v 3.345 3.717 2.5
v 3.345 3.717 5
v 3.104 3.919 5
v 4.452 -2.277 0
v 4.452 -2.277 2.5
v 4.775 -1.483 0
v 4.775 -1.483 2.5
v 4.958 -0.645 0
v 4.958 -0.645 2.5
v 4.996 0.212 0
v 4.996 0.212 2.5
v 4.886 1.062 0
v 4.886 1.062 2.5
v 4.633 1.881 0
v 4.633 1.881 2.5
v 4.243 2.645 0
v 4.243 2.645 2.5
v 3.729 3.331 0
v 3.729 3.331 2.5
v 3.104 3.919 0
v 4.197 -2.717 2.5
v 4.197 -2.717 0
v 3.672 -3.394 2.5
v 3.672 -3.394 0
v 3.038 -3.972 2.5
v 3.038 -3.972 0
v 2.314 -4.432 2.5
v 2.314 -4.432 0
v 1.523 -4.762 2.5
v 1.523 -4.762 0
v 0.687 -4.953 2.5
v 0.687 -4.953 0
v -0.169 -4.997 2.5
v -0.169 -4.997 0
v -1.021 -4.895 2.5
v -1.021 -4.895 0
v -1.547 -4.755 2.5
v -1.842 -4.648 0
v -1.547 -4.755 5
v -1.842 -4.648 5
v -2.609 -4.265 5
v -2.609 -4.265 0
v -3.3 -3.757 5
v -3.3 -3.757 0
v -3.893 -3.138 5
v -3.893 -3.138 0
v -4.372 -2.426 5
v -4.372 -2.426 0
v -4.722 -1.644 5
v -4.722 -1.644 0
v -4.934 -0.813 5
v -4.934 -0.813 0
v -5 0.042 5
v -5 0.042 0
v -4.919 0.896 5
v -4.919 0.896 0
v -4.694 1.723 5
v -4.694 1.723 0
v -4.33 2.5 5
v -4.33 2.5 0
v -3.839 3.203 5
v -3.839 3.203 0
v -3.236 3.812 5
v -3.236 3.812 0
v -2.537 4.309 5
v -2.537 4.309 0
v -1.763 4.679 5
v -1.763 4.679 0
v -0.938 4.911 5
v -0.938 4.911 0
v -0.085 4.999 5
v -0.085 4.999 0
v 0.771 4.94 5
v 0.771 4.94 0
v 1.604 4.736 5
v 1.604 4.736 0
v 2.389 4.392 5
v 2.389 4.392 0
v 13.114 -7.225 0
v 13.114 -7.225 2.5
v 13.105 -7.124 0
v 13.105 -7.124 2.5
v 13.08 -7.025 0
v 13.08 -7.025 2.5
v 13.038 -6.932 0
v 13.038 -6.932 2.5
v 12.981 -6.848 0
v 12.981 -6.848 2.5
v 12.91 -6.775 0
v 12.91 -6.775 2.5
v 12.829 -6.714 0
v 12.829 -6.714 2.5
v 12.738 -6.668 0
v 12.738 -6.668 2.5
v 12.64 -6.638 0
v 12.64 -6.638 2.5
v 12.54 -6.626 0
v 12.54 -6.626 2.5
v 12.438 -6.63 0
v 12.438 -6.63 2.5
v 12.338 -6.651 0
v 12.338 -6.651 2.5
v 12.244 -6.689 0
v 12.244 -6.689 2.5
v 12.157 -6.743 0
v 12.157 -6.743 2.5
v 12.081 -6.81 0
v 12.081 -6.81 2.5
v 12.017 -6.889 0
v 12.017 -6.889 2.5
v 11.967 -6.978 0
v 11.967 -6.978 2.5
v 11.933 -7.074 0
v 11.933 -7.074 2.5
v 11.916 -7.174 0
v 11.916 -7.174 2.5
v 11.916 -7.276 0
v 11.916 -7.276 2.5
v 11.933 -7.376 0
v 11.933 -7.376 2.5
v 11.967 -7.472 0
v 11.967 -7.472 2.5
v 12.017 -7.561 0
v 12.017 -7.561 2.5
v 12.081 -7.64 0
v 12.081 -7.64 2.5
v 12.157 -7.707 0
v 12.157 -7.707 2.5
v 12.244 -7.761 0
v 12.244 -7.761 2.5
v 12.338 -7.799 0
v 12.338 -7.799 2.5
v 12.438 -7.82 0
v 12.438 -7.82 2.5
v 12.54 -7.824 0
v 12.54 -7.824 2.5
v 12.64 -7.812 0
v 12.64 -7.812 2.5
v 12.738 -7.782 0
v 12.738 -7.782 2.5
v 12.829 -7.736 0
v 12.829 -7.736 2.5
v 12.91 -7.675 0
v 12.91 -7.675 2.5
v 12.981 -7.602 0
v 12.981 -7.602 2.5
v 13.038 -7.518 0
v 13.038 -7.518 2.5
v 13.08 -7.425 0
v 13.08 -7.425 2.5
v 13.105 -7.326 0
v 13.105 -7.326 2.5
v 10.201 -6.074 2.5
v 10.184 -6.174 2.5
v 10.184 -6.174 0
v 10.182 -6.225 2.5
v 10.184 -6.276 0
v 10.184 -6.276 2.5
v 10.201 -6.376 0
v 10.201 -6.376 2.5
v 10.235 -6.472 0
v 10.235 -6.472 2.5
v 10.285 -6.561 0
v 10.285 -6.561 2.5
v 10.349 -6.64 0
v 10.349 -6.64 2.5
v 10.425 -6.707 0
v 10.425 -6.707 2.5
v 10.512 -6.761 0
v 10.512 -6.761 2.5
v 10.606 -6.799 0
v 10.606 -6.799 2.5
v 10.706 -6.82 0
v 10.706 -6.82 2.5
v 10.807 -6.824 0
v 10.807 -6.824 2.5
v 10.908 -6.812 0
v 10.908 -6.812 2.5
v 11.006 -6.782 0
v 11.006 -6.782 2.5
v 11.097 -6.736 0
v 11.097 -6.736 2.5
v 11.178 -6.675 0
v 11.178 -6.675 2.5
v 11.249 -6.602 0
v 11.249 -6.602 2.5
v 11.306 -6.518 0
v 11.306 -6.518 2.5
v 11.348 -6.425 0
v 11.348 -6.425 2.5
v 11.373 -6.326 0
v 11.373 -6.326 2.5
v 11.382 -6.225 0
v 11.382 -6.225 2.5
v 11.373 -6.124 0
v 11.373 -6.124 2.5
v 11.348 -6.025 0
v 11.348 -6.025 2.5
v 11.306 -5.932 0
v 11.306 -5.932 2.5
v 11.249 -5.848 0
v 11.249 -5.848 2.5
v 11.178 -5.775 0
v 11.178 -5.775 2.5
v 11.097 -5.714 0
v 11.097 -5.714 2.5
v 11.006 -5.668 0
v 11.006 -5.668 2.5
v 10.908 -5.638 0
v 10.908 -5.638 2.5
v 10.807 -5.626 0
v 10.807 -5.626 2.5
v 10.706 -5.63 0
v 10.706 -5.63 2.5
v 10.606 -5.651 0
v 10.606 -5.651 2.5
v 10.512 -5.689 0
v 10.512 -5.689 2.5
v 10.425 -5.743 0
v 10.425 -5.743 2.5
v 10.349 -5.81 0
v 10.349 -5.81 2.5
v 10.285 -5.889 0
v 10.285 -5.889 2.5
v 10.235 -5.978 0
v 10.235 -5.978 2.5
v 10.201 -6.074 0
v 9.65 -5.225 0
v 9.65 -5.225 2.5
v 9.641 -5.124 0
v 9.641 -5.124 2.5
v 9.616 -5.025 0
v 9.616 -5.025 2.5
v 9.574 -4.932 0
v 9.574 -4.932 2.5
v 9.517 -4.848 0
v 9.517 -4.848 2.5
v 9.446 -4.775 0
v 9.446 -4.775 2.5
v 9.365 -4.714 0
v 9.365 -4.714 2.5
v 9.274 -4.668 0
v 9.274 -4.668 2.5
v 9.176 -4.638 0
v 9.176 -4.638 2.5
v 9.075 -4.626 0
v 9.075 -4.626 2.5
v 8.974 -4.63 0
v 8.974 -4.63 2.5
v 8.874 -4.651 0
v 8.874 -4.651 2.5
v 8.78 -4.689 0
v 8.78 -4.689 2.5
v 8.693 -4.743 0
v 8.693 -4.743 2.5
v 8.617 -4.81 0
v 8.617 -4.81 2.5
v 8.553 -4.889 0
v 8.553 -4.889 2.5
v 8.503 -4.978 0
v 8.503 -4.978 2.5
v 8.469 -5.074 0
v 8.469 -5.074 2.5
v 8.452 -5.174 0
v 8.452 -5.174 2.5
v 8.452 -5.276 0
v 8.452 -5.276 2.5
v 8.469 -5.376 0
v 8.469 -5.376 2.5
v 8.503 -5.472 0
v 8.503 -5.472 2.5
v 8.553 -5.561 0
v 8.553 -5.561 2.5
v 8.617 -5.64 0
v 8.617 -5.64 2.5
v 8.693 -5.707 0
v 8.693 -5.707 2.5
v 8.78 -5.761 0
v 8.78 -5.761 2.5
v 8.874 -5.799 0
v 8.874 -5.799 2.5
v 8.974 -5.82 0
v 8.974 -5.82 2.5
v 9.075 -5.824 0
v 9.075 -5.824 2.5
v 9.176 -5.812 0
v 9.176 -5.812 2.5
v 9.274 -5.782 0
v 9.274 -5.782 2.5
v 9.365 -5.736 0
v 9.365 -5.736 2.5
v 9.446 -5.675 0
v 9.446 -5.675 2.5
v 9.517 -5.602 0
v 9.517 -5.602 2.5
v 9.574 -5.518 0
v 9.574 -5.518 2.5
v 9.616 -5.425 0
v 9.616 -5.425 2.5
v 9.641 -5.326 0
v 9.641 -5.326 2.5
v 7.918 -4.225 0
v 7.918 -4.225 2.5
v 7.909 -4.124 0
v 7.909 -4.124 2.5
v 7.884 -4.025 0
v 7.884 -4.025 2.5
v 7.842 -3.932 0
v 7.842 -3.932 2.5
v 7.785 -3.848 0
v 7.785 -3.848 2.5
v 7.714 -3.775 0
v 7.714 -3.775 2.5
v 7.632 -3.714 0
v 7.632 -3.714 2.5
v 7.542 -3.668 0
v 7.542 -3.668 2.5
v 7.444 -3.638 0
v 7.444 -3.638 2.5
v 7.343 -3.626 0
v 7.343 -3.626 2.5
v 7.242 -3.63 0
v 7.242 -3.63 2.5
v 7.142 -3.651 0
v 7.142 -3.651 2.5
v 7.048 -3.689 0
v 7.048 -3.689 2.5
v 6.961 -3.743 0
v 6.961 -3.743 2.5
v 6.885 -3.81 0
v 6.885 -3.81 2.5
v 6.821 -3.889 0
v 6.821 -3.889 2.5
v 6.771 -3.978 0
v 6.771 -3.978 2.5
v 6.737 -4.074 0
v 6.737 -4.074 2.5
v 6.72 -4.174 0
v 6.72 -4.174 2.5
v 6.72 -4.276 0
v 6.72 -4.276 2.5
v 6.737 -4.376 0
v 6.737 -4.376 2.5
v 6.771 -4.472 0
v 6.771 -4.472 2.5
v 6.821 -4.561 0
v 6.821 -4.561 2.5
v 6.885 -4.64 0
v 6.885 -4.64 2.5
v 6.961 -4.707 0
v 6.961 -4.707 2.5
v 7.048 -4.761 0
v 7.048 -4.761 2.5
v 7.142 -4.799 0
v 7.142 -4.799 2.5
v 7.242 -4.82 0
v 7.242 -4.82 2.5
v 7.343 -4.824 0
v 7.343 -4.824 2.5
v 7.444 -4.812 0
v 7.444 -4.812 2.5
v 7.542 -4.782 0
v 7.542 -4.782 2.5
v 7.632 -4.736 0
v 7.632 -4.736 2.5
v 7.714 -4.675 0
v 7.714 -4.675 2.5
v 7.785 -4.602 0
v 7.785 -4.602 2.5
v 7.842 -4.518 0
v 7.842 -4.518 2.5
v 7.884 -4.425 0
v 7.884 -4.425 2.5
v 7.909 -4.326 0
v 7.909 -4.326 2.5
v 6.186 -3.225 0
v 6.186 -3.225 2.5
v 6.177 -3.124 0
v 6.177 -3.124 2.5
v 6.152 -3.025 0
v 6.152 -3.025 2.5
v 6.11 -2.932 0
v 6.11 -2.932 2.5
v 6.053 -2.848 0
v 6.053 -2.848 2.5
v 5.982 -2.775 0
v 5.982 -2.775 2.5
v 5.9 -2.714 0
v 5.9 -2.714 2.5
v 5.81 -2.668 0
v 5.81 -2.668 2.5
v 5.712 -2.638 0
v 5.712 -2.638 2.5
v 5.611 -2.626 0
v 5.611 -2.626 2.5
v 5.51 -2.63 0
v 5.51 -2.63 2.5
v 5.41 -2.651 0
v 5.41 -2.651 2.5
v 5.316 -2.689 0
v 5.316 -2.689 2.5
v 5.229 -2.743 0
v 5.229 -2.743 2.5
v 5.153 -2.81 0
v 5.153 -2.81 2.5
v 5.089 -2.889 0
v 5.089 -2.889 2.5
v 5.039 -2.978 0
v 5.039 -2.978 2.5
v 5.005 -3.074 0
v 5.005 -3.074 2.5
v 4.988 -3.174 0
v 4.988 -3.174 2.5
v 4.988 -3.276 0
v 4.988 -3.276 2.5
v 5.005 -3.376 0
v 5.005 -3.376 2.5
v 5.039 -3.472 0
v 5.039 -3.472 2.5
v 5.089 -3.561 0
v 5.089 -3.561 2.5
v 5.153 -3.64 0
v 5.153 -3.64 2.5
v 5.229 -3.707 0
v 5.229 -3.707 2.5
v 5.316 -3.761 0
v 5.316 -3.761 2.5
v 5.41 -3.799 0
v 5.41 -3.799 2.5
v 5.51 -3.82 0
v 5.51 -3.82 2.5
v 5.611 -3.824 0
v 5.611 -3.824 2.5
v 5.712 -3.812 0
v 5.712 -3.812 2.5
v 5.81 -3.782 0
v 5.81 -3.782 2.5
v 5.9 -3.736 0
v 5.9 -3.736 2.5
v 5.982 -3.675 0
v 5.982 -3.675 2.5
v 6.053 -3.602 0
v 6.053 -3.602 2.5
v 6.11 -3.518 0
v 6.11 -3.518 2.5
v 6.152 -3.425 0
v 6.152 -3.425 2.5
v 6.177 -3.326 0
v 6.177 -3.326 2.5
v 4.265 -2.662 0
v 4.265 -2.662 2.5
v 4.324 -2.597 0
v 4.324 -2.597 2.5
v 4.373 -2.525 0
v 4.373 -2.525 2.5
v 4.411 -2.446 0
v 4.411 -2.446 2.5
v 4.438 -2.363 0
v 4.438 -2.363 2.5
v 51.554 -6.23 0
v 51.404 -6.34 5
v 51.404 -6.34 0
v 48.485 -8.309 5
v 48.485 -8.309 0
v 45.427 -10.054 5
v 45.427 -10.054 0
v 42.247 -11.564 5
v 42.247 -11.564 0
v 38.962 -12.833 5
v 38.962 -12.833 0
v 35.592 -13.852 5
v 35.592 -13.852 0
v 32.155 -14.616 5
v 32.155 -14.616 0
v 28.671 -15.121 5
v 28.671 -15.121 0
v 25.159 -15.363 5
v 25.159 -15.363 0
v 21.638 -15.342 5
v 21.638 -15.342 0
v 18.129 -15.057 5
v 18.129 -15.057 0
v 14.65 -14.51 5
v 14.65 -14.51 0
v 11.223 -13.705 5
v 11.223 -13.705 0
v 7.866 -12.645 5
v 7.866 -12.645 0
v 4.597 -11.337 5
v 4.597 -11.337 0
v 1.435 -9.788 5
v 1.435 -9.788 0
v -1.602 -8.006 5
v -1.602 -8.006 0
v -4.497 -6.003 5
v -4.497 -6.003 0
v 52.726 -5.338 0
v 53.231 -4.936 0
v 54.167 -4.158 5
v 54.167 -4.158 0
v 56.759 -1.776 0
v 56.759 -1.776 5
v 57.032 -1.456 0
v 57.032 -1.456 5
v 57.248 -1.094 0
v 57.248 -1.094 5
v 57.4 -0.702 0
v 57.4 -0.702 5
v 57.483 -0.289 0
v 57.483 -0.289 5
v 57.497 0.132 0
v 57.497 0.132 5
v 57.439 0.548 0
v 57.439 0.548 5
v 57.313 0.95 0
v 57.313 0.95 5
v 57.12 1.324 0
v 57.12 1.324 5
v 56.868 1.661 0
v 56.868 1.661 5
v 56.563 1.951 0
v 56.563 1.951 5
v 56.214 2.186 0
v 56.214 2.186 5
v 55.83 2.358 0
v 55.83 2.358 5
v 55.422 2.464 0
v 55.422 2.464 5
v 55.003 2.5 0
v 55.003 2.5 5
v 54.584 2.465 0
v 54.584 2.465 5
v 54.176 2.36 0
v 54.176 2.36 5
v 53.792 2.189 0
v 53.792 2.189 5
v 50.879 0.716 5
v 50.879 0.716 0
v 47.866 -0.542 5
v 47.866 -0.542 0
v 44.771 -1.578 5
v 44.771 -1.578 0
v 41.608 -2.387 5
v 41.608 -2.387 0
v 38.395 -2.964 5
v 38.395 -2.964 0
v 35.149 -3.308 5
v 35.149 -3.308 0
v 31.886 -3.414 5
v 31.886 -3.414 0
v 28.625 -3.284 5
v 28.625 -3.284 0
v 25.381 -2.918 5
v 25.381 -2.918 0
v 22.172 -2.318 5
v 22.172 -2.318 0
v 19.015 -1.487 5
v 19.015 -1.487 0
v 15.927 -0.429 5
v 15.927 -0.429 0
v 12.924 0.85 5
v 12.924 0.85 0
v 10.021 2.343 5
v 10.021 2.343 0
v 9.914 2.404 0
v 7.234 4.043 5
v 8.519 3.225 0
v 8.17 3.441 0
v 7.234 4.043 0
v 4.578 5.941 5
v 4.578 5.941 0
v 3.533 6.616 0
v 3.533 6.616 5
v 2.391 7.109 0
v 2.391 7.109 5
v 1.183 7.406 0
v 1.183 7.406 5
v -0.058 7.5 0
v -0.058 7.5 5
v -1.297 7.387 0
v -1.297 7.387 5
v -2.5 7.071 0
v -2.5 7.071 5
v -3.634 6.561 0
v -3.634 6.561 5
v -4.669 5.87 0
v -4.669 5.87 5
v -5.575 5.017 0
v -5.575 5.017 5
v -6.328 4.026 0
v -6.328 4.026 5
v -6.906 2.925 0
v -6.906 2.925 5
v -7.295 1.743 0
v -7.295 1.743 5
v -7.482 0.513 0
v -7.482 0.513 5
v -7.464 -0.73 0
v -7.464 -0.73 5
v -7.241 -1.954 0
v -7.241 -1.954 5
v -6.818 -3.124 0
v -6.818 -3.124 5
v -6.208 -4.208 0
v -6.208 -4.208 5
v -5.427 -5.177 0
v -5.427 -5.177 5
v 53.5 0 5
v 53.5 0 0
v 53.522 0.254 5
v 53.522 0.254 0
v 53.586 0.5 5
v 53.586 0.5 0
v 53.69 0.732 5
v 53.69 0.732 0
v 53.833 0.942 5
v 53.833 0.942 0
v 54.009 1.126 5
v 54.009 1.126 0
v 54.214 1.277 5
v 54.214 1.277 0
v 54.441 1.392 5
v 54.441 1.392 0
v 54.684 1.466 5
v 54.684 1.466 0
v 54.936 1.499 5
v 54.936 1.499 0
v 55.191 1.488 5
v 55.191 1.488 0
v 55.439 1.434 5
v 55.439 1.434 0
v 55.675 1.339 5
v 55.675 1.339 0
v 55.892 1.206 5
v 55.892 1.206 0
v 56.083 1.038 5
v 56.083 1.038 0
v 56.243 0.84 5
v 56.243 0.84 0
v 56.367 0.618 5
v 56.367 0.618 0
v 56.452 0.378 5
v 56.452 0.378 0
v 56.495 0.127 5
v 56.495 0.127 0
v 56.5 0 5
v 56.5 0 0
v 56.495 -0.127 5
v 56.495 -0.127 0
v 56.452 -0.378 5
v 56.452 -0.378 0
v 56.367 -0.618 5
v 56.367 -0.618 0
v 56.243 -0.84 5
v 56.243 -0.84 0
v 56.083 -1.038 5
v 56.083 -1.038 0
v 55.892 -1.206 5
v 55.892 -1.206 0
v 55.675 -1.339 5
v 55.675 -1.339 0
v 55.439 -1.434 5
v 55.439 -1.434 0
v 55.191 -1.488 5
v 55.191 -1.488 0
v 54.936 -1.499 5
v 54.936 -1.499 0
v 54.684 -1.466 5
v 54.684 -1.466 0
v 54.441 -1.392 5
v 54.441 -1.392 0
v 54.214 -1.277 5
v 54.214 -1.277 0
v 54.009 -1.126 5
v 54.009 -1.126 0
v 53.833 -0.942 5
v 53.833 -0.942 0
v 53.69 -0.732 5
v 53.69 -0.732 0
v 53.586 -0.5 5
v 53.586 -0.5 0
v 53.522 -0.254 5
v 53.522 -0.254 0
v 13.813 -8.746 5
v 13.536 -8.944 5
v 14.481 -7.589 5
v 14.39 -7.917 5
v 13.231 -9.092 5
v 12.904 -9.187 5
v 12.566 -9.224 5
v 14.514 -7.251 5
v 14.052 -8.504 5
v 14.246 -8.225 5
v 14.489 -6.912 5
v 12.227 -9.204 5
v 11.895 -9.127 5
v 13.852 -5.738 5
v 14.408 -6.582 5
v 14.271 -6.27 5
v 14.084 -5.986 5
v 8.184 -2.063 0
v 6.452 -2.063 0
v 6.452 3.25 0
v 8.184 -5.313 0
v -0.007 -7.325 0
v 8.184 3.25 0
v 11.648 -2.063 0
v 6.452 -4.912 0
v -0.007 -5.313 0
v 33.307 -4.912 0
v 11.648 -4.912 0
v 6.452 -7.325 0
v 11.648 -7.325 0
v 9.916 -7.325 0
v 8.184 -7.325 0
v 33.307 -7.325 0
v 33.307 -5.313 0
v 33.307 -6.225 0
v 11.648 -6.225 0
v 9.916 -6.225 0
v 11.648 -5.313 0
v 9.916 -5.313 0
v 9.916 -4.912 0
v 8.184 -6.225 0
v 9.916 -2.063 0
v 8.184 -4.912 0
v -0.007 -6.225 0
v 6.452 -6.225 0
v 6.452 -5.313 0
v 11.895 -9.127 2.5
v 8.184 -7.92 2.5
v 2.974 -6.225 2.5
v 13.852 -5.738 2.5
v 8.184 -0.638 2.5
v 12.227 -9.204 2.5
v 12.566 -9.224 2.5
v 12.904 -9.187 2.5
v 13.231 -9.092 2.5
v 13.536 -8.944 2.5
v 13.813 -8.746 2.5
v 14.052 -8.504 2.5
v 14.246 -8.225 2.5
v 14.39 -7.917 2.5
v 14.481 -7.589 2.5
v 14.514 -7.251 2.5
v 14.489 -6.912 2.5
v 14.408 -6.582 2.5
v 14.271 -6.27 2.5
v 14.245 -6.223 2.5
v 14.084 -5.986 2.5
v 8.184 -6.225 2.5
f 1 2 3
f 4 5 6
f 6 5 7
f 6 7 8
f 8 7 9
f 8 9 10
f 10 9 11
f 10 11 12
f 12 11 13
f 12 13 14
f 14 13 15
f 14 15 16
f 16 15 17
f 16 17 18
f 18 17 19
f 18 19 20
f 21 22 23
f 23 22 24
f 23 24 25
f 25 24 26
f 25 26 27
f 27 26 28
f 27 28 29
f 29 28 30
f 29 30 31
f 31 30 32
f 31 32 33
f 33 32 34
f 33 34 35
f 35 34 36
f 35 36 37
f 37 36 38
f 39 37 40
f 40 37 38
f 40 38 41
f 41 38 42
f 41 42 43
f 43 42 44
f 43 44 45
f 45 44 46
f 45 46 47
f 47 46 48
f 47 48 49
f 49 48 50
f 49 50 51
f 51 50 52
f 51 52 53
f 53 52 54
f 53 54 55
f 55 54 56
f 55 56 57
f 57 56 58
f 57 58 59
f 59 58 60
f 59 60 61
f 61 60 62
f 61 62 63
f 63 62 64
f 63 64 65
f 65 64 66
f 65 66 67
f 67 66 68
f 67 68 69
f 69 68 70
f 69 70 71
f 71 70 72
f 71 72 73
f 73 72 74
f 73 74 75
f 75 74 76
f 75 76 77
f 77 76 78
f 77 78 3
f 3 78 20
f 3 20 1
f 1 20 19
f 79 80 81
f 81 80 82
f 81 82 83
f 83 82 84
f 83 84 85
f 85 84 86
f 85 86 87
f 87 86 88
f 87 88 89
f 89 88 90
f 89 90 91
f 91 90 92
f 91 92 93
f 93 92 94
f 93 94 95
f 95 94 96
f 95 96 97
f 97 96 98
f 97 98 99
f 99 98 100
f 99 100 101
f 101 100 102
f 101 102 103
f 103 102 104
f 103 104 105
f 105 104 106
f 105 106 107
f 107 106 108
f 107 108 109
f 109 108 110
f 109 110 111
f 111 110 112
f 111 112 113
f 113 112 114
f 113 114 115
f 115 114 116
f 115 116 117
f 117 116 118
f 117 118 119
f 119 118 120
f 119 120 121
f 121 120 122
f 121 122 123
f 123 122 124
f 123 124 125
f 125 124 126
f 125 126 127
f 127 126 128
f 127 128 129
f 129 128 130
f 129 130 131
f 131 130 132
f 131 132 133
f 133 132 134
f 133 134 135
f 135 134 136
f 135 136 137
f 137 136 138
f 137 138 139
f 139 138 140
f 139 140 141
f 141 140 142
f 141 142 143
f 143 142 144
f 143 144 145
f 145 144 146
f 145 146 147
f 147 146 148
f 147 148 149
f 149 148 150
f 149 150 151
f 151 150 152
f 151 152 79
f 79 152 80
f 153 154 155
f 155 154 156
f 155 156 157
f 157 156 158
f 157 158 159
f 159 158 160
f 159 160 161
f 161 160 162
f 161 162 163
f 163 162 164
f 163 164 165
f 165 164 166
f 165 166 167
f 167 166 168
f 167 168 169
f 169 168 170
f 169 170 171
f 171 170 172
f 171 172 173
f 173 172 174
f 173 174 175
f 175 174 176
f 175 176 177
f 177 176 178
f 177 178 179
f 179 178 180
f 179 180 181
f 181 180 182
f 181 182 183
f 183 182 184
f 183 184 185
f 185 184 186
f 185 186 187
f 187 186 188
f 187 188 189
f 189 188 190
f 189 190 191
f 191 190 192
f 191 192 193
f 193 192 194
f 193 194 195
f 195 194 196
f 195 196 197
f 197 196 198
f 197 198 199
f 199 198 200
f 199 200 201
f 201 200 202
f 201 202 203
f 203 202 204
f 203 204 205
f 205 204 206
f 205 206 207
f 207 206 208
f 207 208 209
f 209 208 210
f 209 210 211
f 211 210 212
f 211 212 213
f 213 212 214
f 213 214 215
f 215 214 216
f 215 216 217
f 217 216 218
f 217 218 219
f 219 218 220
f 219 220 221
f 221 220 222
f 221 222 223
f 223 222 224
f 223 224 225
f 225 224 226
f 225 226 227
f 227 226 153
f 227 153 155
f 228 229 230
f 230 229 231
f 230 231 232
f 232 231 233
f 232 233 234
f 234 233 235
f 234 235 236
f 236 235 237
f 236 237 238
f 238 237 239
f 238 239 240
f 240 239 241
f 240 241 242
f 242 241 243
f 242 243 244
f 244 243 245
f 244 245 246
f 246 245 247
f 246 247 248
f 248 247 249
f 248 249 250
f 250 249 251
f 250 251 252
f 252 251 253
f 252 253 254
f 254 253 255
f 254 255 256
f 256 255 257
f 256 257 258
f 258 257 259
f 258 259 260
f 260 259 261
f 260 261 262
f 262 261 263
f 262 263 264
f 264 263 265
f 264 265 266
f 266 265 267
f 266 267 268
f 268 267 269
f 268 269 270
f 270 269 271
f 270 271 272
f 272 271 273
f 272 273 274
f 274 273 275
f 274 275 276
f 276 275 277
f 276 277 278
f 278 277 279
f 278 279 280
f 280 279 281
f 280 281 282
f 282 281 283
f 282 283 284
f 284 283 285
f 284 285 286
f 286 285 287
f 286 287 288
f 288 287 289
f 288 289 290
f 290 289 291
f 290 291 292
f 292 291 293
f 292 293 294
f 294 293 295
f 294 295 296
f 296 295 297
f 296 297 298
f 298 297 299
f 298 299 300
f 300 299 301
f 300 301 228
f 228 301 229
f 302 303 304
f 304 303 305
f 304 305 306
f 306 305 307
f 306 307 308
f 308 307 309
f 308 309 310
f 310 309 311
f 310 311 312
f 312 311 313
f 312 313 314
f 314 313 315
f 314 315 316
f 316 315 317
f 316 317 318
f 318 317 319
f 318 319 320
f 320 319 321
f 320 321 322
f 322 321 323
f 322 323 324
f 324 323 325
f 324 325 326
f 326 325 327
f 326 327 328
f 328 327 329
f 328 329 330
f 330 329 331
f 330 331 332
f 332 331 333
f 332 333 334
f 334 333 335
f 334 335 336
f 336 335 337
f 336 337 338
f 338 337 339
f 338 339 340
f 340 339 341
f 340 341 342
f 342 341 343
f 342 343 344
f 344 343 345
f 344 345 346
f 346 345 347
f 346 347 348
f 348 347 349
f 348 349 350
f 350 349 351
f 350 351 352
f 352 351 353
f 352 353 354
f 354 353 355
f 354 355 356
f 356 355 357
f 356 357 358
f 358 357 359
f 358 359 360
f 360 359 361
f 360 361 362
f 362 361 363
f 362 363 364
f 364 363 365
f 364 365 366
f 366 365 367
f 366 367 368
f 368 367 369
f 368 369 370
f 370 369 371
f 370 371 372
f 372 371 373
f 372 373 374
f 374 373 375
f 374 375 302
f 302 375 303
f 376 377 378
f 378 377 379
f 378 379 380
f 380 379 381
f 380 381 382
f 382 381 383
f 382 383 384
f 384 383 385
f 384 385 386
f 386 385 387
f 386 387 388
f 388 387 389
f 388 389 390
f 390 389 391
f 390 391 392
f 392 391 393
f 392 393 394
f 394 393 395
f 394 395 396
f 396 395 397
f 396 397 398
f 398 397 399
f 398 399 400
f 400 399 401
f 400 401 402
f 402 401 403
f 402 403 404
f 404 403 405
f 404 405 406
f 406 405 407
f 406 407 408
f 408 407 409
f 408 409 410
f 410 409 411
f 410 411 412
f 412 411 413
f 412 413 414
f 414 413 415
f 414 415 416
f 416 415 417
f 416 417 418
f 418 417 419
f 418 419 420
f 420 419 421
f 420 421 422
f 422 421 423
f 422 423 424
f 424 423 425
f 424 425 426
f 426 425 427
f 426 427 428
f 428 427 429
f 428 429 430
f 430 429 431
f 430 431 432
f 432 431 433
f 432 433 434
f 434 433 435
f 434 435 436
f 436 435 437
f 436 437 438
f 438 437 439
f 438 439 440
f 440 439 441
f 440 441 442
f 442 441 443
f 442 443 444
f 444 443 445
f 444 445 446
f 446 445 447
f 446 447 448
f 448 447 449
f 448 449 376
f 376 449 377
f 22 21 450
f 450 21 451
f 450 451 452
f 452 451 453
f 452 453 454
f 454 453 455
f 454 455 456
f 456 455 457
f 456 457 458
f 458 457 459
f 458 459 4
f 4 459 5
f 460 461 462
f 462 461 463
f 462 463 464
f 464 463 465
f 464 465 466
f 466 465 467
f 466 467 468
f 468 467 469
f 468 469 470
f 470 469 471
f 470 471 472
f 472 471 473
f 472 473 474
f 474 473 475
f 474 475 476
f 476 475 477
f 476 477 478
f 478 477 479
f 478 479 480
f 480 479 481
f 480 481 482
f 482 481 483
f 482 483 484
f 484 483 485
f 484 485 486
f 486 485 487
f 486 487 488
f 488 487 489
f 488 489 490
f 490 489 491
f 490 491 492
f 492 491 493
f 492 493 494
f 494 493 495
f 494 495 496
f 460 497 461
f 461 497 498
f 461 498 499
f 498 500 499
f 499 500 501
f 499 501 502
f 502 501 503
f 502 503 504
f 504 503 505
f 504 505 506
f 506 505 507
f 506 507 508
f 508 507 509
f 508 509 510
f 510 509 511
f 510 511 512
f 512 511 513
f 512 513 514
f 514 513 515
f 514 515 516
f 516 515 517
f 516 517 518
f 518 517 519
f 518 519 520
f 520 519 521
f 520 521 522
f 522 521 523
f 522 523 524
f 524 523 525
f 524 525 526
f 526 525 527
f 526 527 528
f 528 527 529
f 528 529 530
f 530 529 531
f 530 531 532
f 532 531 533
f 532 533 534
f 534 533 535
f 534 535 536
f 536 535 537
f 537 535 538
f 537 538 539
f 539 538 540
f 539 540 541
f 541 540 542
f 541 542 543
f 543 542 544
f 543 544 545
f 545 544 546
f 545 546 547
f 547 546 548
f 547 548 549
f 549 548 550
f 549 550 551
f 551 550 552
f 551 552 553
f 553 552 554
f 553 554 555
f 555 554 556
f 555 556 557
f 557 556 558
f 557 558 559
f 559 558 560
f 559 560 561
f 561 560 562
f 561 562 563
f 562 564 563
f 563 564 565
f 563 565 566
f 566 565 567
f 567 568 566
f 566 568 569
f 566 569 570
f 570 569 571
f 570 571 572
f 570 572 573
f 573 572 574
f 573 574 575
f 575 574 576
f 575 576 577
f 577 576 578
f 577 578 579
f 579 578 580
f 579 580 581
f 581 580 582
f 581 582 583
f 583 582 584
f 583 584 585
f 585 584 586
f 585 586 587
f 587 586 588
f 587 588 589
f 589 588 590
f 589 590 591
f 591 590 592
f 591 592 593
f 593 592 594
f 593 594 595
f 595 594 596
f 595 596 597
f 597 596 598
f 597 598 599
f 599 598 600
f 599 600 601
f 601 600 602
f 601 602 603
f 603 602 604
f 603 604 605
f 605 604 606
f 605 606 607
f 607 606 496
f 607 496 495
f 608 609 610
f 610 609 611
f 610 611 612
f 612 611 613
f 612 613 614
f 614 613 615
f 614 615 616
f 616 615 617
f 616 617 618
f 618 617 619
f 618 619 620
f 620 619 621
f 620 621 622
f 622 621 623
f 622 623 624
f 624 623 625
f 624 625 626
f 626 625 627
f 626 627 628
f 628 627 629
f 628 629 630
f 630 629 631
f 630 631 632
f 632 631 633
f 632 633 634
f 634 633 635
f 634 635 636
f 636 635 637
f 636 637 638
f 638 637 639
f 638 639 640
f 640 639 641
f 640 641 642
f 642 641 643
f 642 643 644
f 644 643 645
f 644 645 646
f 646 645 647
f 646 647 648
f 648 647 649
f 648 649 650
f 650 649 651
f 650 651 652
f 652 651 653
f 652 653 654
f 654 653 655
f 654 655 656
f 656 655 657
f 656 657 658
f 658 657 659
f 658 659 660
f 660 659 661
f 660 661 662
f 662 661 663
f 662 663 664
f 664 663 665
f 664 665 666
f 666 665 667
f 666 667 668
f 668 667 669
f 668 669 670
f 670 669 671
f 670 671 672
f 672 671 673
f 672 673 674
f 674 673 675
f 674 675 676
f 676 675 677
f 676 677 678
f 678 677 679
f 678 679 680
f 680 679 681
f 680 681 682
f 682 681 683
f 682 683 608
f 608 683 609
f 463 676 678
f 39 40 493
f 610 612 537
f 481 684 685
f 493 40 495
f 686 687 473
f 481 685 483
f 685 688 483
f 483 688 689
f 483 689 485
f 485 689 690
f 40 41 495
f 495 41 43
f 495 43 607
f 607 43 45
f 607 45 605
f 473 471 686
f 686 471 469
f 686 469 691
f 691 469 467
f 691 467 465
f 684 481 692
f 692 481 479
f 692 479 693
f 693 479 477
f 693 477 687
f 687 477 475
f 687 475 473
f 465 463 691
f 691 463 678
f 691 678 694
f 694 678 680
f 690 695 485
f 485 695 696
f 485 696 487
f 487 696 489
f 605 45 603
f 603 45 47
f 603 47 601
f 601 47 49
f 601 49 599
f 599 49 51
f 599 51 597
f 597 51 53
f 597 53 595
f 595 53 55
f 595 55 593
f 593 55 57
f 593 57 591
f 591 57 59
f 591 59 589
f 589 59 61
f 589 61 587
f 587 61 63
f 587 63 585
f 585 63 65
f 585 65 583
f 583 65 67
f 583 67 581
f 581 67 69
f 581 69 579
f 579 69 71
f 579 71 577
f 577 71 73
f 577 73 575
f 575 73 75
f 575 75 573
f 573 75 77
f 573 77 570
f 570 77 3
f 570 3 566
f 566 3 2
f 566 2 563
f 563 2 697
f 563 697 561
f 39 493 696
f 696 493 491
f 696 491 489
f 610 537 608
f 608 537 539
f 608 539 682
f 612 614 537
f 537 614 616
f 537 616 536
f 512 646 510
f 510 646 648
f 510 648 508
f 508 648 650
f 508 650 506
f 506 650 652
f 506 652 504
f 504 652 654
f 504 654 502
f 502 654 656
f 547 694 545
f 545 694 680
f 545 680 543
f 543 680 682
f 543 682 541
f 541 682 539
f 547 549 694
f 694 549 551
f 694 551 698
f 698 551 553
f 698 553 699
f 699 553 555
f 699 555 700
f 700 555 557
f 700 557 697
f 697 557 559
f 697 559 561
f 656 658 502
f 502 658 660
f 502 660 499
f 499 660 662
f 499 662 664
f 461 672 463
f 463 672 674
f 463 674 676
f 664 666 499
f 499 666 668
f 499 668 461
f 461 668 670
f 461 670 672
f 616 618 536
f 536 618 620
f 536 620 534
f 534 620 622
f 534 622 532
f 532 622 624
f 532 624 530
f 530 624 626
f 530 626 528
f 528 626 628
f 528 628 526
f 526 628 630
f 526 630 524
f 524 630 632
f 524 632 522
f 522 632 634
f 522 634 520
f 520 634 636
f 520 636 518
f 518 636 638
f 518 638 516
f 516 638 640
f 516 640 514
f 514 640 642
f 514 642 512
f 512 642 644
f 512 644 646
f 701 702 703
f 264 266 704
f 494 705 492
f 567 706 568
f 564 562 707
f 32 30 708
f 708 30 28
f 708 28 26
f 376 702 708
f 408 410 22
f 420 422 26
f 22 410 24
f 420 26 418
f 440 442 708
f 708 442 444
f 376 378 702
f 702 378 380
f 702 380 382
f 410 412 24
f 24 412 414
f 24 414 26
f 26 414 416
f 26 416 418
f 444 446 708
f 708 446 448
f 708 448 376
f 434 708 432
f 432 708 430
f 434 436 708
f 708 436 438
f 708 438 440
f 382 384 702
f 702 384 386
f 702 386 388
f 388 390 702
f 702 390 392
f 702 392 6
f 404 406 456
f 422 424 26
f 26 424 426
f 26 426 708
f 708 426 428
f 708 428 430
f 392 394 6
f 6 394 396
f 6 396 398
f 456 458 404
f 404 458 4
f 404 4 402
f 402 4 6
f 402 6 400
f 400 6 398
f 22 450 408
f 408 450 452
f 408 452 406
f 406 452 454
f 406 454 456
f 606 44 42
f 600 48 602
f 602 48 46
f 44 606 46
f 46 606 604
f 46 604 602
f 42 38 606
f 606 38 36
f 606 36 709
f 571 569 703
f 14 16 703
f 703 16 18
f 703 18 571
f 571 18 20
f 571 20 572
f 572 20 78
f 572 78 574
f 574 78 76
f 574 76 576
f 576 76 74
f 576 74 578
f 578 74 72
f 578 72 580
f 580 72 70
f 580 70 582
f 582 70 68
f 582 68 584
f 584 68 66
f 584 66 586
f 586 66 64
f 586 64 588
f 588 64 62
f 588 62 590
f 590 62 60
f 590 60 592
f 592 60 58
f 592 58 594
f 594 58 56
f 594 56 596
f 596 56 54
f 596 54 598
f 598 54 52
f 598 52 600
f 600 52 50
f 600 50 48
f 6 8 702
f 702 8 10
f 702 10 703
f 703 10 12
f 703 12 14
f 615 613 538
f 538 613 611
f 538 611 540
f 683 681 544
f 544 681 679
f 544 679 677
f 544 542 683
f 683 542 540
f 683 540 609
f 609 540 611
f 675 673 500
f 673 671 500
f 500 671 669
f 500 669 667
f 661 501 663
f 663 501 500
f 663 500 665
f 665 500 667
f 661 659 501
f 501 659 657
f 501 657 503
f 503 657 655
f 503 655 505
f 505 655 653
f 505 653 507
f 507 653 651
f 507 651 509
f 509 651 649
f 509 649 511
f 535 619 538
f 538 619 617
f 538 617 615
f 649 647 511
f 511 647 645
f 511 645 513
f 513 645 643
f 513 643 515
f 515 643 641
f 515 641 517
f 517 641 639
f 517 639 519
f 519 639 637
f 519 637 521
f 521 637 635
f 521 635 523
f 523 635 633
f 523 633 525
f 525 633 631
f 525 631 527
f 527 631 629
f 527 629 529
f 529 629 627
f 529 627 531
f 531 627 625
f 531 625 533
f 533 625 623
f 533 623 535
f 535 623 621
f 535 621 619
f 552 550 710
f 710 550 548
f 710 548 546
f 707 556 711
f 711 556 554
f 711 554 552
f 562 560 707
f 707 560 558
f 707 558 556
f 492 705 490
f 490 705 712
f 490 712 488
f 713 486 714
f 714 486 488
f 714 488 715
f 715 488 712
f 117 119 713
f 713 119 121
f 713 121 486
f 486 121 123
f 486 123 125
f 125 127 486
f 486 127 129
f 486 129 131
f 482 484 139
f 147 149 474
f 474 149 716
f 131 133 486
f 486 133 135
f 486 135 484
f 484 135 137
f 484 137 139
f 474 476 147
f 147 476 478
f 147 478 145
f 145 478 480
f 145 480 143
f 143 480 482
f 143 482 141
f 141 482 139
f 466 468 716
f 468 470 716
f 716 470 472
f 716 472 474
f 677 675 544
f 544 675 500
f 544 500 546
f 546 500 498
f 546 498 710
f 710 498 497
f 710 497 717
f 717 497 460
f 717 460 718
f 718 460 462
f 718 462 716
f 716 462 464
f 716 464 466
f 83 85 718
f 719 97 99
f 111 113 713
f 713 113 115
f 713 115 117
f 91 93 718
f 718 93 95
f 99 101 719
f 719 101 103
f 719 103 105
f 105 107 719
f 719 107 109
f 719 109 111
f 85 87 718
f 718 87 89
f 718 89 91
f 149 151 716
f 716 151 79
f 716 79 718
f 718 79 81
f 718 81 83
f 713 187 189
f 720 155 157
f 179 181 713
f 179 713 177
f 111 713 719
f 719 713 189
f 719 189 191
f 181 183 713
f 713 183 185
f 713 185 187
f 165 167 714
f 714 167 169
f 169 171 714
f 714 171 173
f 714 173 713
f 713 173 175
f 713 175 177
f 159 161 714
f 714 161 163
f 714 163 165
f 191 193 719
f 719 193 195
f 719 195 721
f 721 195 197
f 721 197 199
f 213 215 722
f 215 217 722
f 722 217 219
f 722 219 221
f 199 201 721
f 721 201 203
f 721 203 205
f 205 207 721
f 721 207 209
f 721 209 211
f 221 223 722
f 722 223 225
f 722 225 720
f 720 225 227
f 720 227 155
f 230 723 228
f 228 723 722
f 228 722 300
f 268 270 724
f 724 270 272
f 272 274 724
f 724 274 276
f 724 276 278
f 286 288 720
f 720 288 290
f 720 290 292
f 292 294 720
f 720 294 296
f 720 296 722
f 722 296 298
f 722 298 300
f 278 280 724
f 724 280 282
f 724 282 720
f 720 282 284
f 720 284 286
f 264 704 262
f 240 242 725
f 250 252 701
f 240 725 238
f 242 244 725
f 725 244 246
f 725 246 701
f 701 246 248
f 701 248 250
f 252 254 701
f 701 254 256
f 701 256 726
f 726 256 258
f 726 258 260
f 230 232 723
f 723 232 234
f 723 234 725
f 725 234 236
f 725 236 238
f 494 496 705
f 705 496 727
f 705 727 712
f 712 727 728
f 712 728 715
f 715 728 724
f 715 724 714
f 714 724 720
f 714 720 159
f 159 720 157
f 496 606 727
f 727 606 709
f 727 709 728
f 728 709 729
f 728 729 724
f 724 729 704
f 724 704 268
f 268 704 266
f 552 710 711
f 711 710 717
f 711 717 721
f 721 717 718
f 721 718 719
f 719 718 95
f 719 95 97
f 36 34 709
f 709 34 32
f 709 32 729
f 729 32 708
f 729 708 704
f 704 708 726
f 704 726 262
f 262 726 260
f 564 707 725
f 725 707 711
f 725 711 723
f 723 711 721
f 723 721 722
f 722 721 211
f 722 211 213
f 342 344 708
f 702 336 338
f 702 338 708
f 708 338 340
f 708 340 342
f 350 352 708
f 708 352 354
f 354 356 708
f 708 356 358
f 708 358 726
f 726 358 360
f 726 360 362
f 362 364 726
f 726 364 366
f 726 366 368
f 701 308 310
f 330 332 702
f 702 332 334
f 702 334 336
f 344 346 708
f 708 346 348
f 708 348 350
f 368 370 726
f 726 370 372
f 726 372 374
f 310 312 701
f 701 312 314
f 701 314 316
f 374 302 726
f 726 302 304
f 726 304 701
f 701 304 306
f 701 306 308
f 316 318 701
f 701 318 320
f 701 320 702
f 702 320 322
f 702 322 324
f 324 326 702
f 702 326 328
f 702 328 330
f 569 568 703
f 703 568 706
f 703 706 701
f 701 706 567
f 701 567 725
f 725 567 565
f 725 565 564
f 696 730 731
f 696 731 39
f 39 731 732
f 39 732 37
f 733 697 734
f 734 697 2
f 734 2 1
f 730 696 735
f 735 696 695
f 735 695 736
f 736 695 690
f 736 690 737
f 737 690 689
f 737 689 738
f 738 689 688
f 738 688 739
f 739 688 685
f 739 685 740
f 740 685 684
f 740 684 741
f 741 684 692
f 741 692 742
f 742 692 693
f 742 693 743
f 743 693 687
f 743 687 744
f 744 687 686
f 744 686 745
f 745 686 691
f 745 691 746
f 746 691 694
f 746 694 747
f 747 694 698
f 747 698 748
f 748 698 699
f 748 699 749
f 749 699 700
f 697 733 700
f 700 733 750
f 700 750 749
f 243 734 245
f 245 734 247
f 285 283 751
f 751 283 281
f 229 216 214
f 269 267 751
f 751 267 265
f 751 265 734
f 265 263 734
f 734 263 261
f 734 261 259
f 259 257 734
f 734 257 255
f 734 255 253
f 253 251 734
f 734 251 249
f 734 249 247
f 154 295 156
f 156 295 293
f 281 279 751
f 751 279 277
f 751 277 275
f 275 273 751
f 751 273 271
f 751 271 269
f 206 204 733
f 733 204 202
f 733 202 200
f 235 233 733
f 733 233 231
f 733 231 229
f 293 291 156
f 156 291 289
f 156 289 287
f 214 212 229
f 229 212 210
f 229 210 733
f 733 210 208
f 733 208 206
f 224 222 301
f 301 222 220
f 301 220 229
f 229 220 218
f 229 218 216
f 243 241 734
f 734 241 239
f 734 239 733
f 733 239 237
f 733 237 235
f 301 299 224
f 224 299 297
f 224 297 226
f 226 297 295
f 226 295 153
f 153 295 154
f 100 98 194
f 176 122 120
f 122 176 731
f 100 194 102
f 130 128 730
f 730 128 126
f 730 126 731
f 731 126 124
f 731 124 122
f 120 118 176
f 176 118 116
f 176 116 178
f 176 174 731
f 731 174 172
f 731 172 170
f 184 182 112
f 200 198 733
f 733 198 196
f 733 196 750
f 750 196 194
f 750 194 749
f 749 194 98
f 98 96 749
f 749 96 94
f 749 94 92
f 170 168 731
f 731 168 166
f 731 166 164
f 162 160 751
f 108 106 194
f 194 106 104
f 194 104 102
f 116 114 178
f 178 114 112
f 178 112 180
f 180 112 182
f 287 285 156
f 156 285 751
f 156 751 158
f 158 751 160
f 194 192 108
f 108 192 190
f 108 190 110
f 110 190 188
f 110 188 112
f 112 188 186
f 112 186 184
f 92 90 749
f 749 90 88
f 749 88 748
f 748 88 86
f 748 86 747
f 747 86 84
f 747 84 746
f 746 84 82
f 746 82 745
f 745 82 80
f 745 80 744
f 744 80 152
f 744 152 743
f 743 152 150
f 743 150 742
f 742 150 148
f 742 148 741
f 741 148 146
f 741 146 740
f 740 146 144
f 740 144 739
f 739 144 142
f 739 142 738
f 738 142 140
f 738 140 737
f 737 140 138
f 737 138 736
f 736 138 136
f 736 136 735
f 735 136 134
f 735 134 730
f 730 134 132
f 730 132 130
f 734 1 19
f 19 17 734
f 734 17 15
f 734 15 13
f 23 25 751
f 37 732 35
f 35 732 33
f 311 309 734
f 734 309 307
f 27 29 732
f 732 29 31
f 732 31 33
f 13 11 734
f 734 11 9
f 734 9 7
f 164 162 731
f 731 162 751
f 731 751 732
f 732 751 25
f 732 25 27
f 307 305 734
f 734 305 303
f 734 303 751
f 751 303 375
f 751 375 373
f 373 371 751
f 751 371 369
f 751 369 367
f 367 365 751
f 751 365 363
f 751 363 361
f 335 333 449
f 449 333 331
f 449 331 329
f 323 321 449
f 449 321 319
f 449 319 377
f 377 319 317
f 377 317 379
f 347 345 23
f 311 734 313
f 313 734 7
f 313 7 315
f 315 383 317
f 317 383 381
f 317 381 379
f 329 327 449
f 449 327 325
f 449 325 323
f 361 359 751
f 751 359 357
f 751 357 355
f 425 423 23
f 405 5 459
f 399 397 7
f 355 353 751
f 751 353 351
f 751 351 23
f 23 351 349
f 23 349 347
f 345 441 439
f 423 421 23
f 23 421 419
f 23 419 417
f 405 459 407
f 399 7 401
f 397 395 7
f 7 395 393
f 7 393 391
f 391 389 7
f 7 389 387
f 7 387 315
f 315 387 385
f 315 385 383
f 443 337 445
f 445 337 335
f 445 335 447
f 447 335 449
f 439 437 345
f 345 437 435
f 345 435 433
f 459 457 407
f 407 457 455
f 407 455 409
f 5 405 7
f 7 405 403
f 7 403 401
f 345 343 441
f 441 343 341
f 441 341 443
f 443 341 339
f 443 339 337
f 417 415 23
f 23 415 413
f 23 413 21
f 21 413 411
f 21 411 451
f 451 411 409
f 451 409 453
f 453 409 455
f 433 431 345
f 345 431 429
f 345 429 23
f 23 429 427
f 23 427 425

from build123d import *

# Parameters (mm, degrees)
SKETCH1_R           = 7.5
SKETCH1_R_2         = 5
SKETCH1_R_3         = 2.5
SKETCH1_R_4         = 1.5
BOSS_EXTRUDE1_DEPTH = 5
SKETCH2_R           = 0.6
CUT_EXTRUDE1_DEPTH  = 10
CUT_EXTRUDE2_START  = -2.5
CUT_EXTRUDE2_DEPTH  = 2.5


with BuildPart() as part:
    # Sketch1 → Boss-Extrude1 (new body)
    # profile 1 of 3: a face of its own
    with BuildSketch(Plane.XY):
        with BuildLine():
            ThreePointArc((53.791866029, 2.188701055), (28.624593116, -3.284466085), (4.577922078, 5.940760006))
            ThreePointArc((4.577922078, 5.940760006), (6.729948573, 3.310255611), (7.5, 0))
            ThreePointArc((7.5, 0), (3.356031274, -6.707238932), (-4.496547756, -6.002587632))
            ThreePointArc((-4.496547756, -6.002587632), (26.917032253, -15.274892681), (56.759448417, -1.776046528))
            ThreePointArc((56.759448417, -1.776046528), (52.998552336, -1.498067838), (53.791866029, 2.188701055))
        make_face()
    # profile 2 of 3: a face of its own
    with BuildSketch(Plane.XY):
        Circle(SKETCH1_R)
        Circle(SKETCH1_R_2, mode=Mode.SUBTRACT)
    # profile 3 of 3: a face of its own
    with BuildSketch(Plane.XY):
        with Locations((55, 0)):
            Circle(SKETCH1_R_3)
        with Locations((55, 0)):
            Circle(SKETCH1_R_4, mode=Mode.SUBTRACT)
    extrude(amount=BOSS_EXTRUDE1_DEPTH)

    # Sketch2 → Cut-Extrude1 (cut)
    with BuildSketch(Plane.XY.offset(5)):
        with Locations((3.853813047, -2.225)):
            Circle(SKETCH2_R)
        with Locations((5.585863854, -3.225)):
            Circle(SKETCH2_R)
        with Locations((7.317914662, -4.225)):
            Circle(SKETCH2_R)
        with Locations((9.04996547, -5.225)):
            Circle(SKETCH2_R)
        with Locations((10.782016277, -6.225)):
            Circle(SKETCH2_R)
        with Locations((12.514067085, -7.225)):
            Circle(SKETCH2_R)
    extrude(amount=-CUT_EXTRUDE1_DEPTH, mode=Mode.SUBTRACT)

    # Sketch3 → Cut-Extrude2 (cut)
    with BuildSketch(Plane.XY.offset(5).offset(CUT_EXTRUDE2_START)):
        with BuildLine():
            Line((13.851873565, -5.738301032), (3.344516201, 3.71674742))
            ThreePointArc((3.344516201, 3.71674742), (4.330127019, -2.5), (-1.546539584, -4.754809703))
            Line((-1.546539584, -4.754809703), (11.895451251, -9.126923881))
            ThreePointArc((11.895451251, -9.126923881), (14.246117892, -8.225), (13.851873565, -5.738301032))
        make_face()
    extrude(amount=CUT_EXTRUDE2_DEPTH, mode=Mode.SUBTRACT)


solid = part.part
